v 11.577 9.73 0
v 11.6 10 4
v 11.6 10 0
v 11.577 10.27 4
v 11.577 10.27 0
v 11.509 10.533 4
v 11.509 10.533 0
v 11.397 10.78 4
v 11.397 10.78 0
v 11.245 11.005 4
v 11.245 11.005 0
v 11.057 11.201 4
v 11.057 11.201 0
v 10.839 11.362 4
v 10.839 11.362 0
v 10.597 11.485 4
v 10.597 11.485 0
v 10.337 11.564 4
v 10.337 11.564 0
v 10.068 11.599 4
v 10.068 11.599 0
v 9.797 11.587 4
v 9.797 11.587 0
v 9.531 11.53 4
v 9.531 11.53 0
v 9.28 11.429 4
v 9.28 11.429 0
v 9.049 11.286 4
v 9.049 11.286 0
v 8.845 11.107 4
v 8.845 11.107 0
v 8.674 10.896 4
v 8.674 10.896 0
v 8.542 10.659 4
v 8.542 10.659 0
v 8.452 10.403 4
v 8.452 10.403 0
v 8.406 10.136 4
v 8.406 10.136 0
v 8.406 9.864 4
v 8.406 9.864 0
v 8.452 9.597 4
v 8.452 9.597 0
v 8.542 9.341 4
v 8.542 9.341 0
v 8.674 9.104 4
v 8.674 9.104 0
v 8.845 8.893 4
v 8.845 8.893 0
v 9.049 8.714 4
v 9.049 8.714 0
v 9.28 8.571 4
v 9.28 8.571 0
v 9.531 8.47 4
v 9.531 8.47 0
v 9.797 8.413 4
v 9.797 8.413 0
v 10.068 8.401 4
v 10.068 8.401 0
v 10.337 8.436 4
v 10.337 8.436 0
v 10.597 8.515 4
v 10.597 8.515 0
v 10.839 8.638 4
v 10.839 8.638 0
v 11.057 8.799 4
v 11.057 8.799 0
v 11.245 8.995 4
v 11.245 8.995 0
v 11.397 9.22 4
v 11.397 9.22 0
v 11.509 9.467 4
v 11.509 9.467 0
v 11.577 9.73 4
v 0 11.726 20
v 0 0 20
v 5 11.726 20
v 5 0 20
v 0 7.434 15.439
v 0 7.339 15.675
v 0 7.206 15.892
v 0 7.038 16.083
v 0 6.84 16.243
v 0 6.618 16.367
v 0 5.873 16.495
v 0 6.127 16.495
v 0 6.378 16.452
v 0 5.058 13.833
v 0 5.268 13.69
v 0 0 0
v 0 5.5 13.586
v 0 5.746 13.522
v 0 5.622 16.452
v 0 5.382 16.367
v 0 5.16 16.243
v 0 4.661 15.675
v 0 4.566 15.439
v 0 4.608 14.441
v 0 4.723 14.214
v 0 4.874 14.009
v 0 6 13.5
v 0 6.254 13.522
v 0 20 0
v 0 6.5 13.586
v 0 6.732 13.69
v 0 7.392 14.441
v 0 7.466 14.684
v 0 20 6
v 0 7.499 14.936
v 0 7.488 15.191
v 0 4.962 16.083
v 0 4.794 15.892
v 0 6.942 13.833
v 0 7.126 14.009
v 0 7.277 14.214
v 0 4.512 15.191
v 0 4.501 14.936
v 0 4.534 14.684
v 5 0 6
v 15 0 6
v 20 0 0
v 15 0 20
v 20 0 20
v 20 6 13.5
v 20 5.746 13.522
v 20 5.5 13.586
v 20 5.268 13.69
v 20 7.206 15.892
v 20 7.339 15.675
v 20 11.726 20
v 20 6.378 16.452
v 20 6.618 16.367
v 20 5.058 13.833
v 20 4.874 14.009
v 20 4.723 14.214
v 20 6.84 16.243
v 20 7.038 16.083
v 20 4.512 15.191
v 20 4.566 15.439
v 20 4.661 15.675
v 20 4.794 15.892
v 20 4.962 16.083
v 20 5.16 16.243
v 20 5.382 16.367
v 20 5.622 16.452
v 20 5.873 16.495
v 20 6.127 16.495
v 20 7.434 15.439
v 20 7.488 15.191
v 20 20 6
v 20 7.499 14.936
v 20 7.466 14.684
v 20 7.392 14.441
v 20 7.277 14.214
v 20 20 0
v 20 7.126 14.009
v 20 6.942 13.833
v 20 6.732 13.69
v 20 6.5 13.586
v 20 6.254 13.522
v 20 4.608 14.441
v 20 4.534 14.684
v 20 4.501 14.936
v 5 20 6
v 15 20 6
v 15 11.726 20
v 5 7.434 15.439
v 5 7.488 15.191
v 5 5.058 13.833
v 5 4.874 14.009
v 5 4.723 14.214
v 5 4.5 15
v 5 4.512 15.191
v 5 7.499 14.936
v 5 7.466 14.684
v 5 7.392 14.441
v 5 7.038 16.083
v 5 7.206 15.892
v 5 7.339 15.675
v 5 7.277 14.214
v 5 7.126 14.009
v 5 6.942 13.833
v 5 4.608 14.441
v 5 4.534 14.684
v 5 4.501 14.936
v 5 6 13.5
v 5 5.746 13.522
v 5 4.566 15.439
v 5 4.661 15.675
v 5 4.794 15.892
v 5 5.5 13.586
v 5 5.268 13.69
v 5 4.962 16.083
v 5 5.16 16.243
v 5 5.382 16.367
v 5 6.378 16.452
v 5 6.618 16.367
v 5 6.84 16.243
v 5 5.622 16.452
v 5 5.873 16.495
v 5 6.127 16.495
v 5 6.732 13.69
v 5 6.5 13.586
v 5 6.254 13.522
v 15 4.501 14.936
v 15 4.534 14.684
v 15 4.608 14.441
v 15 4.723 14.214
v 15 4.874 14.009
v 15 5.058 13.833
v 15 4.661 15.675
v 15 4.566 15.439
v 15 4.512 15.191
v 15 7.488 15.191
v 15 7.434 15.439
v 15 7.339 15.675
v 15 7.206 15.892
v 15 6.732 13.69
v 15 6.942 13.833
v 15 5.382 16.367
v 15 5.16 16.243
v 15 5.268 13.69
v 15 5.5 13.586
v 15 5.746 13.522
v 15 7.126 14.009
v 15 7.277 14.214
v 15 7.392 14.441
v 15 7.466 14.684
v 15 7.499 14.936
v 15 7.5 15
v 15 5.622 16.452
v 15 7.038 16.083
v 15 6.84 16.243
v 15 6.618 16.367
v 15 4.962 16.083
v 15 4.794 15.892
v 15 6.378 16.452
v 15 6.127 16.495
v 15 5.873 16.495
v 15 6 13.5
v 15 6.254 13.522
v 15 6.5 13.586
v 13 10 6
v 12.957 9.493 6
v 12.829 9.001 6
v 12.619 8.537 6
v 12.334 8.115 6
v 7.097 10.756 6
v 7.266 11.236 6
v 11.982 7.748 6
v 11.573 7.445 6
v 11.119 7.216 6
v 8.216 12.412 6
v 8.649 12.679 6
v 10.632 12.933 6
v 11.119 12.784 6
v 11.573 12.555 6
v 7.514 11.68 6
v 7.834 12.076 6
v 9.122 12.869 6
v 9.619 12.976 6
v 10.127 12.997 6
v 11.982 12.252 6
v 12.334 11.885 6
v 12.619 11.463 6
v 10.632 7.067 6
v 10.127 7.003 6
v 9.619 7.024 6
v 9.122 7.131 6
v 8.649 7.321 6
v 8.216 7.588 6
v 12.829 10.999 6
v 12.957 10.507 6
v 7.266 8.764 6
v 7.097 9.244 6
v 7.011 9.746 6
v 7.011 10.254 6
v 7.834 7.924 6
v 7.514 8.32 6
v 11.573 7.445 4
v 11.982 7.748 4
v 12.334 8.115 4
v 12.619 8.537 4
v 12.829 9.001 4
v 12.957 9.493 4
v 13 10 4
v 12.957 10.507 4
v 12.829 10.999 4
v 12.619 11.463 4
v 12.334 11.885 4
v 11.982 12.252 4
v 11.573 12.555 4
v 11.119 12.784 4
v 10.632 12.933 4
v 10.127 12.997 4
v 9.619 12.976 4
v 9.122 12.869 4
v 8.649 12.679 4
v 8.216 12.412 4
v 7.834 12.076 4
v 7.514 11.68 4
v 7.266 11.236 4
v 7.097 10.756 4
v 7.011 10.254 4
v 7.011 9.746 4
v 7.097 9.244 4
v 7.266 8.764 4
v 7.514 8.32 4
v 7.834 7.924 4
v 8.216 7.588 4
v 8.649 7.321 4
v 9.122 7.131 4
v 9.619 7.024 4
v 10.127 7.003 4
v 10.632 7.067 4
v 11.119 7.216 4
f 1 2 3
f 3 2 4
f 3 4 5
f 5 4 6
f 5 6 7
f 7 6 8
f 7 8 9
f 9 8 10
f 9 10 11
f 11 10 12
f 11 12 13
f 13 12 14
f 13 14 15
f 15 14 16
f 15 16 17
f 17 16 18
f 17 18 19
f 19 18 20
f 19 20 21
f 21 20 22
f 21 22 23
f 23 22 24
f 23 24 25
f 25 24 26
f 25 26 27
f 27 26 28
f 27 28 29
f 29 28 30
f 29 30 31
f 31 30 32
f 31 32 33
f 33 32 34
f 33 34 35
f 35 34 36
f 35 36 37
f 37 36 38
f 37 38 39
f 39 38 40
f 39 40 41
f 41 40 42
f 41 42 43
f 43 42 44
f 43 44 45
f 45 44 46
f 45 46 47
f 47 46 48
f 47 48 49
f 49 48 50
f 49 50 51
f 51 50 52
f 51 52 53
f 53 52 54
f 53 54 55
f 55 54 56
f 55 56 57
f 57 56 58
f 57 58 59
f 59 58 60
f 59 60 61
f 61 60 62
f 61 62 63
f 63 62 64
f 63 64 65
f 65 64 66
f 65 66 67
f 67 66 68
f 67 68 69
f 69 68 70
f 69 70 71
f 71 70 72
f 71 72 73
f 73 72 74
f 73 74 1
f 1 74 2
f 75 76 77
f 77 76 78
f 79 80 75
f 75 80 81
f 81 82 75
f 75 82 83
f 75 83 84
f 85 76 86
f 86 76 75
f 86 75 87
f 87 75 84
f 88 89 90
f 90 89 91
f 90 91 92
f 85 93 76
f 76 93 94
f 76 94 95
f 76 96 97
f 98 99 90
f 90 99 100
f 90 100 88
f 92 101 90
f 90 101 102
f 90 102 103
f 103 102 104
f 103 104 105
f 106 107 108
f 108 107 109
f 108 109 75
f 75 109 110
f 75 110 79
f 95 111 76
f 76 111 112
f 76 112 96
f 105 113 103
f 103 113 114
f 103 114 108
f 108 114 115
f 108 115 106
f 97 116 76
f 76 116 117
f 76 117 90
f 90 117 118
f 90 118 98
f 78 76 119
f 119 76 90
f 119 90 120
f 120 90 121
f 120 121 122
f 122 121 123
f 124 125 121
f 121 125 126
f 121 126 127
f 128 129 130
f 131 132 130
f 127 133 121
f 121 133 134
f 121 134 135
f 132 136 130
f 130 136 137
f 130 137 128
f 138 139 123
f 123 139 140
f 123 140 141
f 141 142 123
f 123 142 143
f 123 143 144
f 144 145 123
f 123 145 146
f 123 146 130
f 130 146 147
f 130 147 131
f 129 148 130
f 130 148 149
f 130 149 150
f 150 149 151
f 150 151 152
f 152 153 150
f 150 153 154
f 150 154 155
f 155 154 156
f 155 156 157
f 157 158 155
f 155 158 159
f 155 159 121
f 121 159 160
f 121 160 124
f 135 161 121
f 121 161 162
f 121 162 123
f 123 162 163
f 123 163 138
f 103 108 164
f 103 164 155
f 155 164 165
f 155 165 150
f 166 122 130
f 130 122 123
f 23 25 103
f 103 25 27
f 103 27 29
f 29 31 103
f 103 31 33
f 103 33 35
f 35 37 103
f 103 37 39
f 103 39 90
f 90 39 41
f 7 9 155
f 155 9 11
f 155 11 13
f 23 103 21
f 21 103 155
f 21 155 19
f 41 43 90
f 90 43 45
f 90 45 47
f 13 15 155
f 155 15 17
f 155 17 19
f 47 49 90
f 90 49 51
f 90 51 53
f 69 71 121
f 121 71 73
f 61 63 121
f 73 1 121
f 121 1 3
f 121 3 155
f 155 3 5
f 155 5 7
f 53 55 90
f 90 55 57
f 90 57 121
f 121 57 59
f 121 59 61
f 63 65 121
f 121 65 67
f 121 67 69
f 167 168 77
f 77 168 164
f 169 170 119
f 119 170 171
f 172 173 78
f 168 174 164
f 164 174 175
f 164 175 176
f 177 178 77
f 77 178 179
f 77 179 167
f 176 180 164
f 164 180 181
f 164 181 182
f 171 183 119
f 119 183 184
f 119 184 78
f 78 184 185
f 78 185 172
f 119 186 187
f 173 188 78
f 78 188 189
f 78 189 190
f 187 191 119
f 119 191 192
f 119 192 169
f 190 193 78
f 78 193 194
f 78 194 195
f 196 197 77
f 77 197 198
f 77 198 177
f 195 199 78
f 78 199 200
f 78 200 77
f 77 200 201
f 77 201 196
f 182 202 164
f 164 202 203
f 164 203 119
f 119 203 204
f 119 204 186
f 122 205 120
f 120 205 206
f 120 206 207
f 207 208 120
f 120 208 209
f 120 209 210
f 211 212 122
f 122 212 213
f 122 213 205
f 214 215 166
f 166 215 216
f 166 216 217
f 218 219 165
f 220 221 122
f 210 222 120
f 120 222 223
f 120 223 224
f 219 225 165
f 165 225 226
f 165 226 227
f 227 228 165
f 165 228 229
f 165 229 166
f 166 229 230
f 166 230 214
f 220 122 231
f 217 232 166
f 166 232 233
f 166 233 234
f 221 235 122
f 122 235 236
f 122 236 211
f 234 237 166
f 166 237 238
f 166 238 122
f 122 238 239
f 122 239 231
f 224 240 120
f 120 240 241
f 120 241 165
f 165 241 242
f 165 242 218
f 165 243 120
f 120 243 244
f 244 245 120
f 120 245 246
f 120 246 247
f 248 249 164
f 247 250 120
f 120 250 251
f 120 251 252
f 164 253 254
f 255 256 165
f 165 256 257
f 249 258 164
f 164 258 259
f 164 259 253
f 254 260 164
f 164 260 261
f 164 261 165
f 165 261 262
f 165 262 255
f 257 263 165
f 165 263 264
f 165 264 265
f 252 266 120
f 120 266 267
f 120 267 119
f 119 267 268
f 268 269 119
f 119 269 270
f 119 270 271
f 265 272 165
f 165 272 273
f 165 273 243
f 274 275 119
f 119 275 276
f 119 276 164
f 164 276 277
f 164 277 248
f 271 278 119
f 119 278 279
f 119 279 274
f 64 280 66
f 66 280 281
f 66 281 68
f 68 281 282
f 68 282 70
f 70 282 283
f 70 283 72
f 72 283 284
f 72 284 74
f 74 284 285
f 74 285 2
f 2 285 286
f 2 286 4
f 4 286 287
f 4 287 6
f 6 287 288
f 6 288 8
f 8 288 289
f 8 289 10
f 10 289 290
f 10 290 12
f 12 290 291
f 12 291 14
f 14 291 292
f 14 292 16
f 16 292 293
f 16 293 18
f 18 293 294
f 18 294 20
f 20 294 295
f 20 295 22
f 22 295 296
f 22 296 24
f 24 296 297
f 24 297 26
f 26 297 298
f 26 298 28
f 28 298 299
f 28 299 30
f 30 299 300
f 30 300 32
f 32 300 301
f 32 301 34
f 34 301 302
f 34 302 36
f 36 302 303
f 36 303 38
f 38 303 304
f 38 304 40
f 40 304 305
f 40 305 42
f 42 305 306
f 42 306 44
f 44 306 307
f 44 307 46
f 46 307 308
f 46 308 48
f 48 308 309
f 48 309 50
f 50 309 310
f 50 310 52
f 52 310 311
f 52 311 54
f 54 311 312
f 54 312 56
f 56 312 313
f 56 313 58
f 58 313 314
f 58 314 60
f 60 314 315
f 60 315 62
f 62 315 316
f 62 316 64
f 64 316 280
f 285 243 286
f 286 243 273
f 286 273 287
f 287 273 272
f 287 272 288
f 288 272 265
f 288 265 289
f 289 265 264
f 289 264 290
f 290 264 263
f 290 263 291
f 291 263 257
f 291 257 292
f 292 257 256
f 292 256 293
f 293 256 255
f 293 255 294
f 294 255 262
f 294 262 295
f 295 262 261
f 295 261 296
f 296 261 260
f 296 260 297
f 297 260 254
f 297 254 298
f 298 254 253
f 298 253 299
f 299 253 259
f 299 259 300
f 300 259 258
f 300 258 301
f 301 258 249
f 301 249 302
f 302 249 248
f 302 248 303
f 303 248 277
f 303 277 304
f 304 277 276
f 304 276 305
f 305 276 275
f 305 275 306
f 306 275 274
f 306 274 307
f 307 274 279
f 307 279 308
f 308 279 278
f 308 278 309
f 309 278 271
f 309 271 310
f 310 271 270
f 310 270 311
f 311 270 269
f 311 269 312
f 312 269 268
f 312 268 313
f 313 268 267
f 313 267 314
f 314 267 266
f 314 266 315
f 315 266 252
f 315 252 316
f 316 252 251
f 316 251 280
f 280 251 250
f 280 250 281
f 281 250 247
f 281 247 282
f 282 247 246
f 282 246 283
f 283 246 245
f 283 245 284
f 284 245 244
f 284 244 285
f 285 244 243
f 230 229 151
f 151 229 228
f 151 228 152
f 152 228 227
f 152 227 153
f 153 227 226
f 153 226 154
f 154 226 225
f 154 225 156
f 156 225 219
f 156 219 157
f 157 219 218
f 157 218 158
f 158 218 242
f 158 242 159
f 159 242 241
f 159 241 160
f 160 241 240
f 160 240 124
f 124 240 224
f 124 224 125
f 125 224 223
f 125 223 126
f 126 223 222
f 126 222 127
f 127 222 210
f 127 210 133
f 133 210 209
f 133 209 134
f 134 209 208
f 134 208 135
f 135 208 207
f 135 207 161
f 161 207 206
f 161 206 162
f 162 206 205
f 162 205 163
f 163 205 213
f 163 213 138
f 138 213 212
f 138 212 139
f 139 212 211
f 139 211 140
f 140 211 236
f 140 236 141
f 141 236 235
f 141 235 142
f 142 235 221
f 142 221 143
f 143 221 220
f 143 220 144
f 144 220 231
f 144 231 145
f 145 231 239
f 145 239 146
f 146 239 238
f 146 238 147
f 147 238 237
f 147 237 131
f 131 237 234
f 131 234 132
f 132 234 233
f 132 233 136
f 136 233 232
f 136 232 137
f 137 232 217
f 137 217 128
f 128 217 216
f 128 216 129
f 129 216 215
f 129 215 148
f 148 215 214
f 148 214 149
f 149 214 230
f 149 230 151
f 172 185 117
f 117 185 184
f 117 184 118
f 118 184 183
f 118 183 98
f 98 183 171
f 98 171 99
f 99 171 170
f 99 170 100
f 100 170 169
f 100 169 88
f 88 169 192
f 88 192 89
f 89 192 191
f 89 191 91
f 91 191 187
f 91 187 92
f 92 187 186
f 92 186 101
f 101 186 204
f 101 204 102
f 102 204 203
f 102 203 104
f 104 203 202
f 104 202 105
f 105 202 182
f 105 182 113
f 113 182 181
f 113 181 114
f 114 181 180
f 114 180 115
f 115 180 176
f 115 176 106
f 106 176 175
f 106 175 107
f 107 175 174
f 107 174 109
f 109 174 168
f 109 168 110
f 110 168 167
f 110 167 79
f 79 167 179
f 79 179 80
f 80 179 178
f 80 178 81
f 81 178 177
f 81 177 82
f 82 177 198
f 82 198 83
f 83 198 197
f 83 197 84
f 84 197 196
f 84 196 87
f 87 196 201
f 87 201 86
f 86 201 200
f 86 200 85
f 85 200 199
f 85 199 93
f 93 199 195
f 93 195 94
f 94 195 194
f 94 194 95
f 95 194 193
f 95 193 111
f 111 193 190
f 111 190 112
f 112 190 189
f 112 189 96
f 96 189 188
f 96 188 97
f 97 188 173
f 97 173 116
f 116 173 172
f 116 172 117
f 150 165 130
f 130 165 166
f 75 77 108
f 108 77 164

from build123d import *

# Parameters (mm, degrees)
SKETCH_1_W          = 20
SKETCH_1_H          = 20
EXTRUDE_1_DEPTH     = 20
SKETCH_2_W          = 10
SKETCH_2_H          = 20
CUT_EXTRUDE_1_DEPTH = 14
SKETCH_3_R          = 1.6
CUT_EXTRUDE_2_DEPTH = 32.559467676
SKETCH_5_R          = 3
CUT_EXTRUDE_3_DEPTH = 2
SKETCH_6_R          = 1.5
CUT_EXTRUDE_4_DEPTH = 35.641016151


with BuildPart() as part:
    # 草图1 → 凸台-拉伸1 (new body)
    with BuildSketch(Plane.XY):
        with Locations((10, 10)):
            Rectangle(SKETCH_1_W, SKETCH_1_H)
    extrude(amount=EXTRUDE_1_DEPTH)

    # 草图2 → 切除-拉伸1 (cut)
    with BuildSketch(Plane.XY.offset(20)):
        with Locations((10, 10)):
            Rectangle(SKETCH_2_W, SKETCH_2_H)
    extrude(amount=-CUT_EXTRUDE_1_DEPTH, mode=Mode.SUBTRACT)

    # 草图3 → 切除-拉伸2 (cut, through all)
    with BuildSketch(Plane.XY.offset(6)):
        with Locations((10, 10)):
            Circle(SKETCH_3_R)
    extrude(amount=-CUT_EXTRUDE_2_DEPTH, mode=Mode.SUBTRACT)

    # 草图5 → 切除-拉伸3 (cut)
    with BuildSketch(Plane.XY.offset(6)):
        with Locations((10, 10)):
            Circle(SKETCH_5_R)
    extrude(amount=-CUT_EXTRUDE_3_DEPTH, mode=Mode.SUBTRACT)

    # 草图6 → 切除-拉伸4 (cut, through all)
    with BuildSketch(Plane(origin=(20, 0, 0), x_dir=(0, 0, -1), z_dir=(1, 0, 0))):
        with Locations((-15, 6)):
            Circle(SKETCH_6_R)
        Polygon((-20, 20), (-6, 20), (-20, 11.725834551), align=None)
    extrude(amount=-CUT_EXTRUDE_4_DEPTH, mode=Mode.SUBTRACT)


solid = part.part
